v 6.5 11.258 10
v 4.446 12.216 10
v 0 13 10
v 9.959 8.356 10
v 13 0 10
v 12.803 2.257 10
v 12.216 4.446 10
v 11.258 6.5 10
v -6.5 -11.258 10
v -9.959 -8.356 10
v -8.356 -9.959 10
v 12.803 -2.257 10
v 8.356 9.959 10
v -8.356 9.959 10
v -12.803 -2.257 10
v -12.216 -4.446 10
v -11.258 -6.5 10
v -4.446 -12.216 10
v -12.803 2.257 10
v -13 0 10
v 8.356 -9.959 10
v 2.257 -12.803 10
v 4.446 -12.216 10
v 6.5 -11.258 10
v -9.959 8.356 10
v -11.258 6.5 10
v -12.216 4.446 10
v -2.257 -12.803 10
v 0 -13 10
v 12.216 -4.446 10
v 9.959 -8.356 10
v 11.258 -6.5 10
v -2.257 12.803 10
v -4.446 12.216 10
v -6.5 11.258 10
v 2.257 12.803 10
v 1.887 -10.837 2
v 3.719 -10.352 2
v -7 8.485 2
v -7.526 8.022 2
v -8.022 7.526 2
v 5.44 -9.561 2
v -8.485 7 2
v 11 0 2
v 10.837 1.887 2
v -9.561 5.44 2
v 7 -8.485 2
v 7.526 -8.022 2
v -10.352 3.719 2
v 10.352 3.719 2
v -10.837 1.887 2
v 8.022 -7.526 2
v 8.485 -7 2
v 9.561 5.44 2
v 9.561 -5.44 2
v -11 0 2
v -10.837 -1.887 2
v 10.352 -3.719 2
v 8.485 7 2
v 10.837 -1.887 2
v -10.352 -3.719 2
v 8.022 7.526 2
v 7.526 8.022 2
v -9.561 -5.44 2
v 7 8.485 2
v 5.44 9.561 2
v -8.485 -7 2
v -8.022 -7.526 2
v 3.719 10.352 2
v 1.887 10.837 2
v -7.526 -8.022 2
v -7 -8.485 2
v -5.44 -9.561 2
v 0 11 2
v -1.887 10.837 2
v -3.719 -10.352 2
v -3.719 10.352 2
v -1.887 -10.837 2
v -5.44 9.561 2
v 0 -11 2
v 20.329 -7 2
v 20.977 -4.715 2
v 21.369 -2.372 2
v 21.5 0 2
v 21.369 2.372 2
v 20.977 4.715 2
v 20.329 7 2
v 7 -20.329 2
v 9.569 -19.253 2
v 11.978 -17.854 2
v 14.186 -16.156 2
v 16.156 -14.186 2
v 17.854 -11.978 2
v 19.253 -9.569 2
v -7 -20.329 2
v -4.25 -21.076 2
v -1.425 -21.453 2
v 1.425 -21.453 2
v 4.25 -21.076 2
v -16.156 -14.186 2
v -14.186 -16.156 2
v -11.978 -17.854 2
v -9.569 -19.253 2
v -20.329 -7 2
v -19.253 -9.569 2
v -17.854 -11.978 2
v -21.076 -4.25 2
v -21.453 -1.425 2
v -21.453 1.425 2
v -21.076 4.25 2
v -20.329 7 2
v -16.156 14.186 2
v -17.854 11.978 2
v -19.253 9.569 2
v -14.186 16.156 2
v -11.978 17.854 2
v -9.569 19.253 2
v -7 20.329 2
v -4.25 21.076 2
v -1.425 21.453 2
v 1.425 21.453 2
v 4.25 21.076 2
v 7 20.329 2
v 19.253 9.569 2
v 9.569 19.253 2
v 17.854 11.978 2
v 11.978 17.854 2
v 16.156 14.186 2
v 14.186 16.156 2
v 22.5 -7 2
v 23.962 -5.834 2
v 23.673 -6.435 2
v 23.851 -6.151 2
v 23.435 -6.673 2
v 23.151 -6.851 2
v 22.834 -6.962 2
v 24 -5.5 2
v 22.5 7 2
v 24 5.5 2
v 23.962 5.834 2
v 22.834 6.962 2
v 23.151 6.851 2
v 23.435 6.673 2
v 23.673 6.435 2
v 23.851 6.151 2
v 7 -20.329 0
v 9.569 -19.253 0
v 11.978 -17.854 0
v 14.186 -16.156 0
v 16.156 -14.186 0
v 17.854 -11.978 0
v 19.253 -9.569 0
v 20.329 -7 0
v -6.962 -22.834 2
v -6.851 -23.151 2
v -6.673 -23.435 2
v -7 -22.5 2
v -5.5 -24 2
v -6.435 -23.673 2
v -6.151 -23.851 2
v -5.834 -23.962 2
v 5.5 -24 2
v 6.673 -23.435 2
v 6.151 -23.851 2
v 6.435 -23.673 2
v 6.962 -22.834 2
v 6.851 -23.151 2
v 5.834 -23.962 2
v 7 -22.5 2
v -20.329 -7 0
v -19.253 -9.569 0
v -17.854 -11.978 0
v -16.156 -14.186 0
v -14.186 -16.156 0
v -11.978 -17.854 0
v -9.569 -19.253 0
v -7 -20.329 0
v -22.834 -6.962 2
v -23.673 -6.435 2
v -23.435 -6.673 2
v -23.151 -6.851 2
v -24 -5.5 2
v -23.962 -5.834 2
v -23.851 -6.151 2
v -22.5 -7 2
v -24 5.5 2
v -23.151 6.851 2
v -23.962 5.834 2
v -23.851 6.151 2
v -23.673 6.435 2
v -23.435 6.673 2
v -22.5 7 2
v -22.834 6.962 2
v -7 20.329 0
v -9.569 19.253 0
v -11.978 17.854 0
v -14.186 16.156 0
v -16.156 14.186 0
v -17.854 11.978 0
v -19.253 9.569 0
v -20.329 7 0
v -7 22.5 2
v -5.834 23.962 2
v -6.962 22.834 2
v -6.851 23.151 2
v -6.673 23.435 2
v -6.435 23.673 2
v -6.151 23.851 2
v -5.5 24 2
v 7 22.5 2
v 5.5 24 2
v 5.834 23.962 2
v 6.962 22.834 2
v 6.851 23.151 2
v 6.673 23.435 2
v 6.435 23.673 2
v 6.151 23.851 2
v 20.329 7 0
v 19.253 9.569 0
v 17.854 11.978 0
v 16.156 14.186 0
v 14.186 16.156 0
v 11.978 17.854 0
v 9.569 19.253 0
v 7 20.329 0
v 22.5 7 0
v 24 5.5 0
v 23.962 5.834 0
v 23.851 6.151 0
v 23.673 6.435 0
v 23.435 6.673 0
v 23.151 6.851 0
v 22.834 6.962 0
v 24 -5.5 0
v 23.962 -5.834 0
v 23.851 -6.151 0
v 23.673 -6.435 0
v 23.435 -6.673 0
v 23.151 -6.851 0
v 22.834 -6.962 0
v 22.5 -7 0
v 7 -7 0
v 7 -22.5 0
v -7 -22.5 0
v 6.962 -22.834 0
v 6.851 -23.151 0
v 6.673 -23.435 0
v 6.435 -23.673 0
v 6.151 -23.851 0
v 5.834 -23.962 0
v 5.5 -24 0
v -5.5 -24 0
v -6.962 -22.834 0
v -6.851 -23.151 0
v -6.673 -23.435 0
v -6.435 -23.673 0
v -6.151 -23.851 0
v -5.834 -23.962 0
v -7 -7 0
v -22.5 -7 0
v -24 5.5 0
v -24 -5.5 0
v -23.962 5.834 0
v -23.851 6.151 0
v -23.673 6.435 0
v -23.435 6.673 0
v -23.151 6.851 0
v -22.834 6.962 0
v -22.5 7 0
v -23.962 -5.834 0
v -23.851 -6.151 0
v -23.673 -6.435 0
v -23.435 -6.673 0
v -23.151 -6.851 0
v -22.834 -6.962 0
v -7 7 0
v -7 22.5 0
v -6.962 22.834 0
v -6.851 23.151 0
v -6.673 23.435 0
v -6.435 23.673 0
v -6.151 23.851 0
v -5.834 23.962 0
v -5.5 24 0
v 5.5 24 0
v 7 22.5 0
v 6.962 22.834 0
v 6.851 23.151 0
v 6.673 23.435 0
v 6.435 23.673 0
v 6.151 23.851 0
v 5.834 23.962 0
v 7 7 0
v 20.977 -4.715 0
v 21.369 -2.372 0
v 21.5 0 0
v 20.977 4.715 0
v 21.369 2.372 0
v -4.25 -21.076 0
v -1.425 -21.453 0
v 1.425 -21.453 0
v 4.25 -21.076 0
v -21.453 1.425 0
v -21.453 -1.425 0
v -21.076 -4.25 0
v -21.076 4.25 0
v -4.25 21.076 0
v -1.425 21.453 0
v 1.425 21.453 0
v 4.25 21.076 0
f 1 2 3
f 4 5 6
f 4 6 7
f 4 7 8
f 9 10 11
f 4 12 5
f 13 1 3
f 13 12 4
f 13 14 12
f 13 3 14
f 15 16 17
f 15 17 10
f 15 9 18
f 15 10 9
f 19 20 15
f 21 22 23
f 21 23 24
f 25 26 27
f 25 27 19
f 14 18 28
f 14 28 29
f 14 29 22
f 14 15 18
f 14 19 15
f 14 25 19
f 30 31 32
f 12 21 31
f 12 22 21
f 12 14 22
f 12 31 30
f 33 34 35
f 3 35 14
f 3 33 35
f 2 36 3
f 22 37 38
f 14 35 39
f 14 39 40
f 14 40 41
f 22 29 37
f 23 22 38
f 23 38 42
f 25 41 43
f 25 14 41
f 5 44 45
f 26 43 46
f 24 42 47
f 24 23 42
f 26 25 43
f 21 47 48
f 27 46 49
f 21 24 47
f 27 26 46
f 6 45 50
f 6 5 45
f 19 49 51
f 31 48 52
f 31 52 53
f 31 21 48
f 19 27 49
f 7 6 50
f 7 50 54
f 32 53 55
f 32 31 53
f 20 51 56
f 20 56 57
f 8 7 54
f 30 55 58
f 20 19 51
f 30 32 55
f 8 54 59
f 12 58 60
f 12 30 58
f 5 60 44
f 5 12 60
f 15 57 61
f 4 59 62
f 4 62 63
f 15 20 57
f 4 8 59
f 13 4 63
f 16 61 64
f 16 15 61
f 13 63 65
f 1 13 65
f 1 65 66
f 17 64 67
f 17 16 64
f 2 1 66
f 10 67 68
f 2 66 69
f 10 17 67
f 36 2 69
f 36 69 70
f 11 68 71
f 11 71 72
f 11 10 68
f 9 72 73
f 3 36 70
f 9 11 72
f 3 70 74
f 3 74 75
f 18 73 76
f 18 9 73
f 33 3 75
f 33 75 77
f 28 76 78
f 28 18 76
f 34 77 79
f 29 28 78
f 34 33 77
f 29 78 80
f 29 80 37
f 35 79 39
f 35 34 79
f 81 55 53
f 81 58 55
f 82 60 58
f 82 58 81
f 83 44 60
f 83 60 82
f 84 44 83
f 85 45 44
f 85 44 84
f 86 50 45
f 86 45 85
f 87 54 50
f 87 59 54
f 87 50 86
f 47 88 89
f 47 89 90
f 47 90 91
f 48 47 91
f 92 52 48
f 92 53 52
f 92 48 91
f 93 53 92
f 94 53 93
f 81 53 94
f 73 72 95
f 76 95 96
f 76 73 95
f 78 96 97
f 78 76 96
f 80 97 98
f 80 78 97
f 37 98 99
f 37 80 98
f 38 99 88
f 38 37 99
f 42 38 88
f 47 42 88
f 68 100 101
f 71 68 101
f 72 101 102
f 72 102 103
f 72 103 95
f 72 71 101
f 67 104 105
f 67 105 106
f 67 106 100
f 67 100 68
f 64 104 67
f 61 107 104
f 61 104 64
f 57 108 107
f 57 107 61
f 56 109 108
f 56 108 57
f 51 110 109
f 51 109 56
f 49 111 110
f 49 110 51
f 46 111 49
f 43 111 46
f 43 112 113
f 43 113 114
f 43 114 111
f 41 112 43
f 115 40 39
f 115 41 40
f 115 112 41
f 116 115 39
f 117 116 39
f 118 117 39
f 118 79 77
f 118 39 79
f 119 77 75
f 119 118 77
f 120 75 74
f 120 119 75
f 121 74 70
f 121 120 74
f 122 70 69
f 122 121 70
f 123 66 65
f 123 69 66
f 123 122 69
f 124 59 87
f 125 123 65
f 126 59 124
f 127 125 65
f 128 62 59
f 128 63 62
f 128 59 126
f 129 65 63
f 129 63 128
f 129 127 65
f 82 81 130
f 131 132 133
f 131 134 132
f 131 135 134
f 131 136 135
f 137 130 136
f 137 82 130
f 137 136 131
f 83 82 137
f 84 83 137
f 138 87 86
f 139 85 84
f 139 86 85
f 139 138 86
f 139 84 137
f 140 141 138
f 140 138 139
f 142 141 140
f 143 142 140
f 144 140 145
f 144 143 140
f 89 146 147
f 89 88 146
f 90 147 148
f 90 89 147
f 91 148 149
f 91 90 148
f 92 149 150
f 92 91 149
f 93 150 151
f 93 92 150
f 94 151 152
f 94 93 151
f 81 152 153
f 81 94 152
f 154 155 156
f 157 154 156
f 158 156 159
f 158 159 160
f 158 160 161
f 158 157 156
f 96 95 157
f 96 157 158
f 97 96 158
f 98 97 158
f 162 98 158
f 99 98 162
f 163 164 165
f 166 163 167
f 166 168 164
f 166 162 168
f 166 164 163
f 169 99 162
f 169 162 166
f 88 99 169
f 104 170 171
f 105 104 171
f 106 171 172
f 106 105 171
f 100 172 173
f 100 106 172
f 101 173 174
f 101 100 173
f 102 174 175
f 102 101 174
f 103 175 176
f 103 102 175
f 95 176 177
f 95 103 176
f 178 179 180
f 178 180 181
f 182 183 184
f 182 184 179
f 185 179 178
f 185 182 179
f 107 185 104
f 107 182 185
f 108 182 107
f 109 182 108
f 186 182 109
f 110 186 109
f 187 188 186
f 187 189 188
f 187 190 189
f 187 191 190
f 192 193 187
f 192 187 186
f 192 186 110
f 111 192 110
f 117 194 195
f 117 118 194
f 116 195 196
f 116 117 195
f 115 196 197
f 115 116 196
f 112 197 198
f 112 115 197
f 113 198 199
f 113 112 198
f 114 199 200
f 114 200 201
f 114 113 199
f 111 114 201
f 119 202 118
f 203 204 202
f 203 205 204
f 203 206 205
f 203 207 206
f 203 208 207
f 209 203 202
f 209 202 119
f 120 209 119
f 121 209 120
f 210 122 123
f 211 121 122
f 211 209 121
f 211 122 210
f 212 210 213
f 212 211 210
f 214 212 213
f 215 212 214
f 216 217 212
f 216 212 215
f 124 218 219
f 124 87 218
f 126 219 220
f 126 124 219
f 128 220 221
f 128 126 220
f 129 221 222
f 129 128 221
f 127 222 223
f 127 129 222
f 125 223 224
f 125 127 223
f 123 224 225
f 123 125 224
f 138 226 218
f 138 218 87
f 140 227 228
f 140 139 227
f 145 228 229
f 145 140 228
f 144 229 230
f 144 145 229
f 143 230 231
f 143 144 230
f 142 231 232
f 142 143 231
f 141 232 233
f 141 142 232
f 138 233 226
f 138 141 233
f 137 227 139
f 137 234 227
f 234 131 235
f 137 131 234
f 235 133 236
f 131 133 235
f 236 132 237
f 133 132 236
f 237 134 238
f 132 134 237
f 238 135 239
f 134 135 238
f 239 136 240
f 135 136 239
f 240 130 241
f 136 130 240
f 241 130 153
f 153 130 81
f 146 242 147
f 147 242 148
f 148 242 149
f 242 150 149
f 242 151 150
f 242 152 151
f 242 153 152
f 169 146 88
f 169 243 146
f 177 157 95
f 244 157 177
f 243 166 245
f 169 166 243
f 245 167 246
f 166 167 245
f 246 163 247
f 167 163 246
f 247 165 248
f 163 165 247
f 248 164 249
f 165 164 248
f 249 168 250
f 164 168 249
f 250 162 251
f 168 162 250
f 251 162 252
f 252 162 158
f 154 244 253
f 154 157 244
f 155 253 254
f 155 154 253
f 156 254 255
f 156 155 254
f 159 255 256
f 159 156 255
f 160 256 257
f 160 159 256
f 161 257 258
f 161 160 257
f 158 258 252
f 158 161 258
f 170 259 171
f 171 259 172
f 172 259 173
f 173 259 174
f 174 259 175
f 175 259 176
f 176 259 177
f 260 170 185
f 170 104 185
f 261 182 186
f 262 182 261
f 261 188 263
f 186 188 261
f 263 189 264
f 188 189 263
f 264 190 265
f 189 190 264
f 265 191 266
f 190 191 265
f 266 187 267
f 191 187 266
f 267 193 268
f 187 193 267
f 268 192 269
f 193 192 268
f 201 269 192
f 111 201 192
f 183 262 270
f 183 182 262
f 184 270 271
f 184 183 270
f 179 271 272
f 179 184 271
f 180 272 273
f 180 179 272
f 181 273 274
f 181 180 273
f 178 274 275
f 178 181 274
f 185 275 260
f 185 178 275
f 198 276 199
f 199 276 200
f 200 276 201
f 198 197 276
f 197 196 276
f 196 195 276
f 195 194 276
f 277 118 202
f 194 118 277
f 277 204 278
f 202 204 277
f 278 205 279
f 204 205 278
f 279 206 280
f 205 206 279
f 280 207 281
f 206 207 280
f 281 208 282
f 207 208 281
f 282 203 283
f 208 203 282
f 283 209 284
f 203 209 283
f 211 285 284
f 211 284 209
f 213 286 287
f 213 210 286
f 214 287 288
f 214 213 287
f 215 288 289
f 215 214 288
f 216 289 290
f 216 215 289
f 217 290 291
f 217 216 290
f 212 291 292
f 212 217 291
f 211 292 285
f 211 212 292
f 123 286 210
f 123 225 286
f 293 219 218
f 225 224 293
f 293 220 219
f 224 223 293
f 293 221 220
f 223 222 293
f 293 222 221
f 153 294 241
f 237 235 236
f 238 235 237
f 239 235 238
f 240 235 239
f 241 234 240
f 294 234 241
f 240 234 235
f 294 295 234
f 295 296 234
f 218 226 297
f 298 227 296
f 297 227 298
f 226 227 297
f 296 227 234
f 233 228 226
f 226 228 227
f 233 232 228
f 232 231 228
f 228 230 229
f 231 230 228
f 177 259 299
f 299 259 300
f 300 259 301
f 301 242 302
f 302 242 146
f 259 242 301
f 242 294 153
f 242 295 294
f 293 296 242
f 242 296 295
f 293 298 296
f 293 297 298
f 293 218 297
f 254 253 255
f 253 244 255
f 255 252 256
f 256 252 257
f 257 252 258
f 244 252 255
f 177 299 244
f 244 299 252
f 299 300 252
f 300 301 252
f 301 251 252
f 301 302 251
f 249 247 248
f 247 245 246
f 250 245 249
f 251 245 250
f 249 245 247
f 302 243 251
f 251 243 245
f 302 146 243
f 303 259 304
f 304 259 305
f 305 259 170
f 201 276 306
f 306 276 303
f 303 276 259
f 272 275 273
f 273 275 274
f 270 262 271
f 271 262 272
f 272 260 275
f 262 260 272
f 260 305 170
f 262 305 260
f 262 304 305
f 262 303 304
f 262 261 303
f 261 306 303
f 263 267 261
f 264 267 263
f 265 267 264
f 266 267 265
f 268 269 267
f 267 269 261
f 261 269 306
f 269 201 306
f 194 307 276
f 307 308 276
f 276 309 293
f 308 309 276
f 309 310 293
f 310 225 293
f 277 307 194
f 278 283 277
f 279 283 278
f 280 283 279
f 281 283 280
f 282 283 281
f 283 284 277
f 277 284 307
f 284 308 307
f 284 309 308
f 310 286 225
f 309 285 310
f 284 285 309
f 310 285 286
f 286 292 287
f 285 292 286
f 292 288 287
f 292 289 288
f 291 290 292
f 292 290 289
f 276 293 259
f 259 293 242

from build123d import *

# Parameters (mm, degrees)
BOX_W          = 14
BOX_H          = 48
BOX_DEPTH      = 2
FILLET_R       = 1.5
BOX001_W       = 48
BOX001_H       = 14
BOX001_DEPTH   = 2
FILLET001_R    = 1.5
CYLINDER_R     = 21.5
CYLINDER_DEPTH = 2


with BuildPart() as cone:
    # Cone → Cone (revolve)
    with BuildSketch(Plane(origin=(0, 0, 2), x_dir=(1, 0, 0), z_dir=(0, -1, 0))):
        Polygon((0, 0), (11, 0), (13, 8), (0, 8), align=None)
    revolve(axis=Axis((0, 0, 2), (0, 0, 1)))


with BuildPart() as fillet_body:
    # Box → Box (new body)
    with BuildSketch(Plane(origin=(-7, -24, 0), x_dir=(1, 0, 0), z_dir=(0, 0, 1))):
        with Locations((7, 24)):
            Rectangle(BOX_W, BOX_H)
    extrude(amount=BOX_DEPTH)

    # Fillet
    fillet_edges = [fillet_body.edges().sort_by_distance(p)[0] for p in [
        (-7, -24, 1),
        (-7, 24, 1),
        (7, -24, 1),
        (7, 24, 1),
    ]]
    fillet(fillet_edges, radius=FILLET_R)


with BuildPart() as fillet001:
    # Box001 → Box001 (new body)
    with BuildSketch(Plane(origin=(-24, -7, 0), x_dir=(1, 0, 0), z_dir=(0, 0, 1))):
        with Locations((24, 7)):
            Rectangle(BOX001_W, BOX001_H)
    extrude(amount=BOX001_DEPTH)

    # Fillet001
    fillet001_edges = [fillet001.edges().sort_by_distance(p)[0] for p in [
        (-24, -7, 1),
        (-24, 7, 1),
        (24, -7, 1),
        (24, 7, 1),
    ]]
    fillet(fillet001_edges, radius=FILLET001_R)


with BuildPart() as videotap_port_cover:
    # Cylinder → Cylinder (new body)
    with BuildSketch(Plane.XY):
        Circle(CYLINDER_R)
    extrude(amount=CYLINDER_DEPTH)

    # Fusion: union Cone, Fillet body, Fillet001
    add(cone.part)
    add(fillet_body.part)
    add(fillet001.part)


solid = videotap_port_cover.part
